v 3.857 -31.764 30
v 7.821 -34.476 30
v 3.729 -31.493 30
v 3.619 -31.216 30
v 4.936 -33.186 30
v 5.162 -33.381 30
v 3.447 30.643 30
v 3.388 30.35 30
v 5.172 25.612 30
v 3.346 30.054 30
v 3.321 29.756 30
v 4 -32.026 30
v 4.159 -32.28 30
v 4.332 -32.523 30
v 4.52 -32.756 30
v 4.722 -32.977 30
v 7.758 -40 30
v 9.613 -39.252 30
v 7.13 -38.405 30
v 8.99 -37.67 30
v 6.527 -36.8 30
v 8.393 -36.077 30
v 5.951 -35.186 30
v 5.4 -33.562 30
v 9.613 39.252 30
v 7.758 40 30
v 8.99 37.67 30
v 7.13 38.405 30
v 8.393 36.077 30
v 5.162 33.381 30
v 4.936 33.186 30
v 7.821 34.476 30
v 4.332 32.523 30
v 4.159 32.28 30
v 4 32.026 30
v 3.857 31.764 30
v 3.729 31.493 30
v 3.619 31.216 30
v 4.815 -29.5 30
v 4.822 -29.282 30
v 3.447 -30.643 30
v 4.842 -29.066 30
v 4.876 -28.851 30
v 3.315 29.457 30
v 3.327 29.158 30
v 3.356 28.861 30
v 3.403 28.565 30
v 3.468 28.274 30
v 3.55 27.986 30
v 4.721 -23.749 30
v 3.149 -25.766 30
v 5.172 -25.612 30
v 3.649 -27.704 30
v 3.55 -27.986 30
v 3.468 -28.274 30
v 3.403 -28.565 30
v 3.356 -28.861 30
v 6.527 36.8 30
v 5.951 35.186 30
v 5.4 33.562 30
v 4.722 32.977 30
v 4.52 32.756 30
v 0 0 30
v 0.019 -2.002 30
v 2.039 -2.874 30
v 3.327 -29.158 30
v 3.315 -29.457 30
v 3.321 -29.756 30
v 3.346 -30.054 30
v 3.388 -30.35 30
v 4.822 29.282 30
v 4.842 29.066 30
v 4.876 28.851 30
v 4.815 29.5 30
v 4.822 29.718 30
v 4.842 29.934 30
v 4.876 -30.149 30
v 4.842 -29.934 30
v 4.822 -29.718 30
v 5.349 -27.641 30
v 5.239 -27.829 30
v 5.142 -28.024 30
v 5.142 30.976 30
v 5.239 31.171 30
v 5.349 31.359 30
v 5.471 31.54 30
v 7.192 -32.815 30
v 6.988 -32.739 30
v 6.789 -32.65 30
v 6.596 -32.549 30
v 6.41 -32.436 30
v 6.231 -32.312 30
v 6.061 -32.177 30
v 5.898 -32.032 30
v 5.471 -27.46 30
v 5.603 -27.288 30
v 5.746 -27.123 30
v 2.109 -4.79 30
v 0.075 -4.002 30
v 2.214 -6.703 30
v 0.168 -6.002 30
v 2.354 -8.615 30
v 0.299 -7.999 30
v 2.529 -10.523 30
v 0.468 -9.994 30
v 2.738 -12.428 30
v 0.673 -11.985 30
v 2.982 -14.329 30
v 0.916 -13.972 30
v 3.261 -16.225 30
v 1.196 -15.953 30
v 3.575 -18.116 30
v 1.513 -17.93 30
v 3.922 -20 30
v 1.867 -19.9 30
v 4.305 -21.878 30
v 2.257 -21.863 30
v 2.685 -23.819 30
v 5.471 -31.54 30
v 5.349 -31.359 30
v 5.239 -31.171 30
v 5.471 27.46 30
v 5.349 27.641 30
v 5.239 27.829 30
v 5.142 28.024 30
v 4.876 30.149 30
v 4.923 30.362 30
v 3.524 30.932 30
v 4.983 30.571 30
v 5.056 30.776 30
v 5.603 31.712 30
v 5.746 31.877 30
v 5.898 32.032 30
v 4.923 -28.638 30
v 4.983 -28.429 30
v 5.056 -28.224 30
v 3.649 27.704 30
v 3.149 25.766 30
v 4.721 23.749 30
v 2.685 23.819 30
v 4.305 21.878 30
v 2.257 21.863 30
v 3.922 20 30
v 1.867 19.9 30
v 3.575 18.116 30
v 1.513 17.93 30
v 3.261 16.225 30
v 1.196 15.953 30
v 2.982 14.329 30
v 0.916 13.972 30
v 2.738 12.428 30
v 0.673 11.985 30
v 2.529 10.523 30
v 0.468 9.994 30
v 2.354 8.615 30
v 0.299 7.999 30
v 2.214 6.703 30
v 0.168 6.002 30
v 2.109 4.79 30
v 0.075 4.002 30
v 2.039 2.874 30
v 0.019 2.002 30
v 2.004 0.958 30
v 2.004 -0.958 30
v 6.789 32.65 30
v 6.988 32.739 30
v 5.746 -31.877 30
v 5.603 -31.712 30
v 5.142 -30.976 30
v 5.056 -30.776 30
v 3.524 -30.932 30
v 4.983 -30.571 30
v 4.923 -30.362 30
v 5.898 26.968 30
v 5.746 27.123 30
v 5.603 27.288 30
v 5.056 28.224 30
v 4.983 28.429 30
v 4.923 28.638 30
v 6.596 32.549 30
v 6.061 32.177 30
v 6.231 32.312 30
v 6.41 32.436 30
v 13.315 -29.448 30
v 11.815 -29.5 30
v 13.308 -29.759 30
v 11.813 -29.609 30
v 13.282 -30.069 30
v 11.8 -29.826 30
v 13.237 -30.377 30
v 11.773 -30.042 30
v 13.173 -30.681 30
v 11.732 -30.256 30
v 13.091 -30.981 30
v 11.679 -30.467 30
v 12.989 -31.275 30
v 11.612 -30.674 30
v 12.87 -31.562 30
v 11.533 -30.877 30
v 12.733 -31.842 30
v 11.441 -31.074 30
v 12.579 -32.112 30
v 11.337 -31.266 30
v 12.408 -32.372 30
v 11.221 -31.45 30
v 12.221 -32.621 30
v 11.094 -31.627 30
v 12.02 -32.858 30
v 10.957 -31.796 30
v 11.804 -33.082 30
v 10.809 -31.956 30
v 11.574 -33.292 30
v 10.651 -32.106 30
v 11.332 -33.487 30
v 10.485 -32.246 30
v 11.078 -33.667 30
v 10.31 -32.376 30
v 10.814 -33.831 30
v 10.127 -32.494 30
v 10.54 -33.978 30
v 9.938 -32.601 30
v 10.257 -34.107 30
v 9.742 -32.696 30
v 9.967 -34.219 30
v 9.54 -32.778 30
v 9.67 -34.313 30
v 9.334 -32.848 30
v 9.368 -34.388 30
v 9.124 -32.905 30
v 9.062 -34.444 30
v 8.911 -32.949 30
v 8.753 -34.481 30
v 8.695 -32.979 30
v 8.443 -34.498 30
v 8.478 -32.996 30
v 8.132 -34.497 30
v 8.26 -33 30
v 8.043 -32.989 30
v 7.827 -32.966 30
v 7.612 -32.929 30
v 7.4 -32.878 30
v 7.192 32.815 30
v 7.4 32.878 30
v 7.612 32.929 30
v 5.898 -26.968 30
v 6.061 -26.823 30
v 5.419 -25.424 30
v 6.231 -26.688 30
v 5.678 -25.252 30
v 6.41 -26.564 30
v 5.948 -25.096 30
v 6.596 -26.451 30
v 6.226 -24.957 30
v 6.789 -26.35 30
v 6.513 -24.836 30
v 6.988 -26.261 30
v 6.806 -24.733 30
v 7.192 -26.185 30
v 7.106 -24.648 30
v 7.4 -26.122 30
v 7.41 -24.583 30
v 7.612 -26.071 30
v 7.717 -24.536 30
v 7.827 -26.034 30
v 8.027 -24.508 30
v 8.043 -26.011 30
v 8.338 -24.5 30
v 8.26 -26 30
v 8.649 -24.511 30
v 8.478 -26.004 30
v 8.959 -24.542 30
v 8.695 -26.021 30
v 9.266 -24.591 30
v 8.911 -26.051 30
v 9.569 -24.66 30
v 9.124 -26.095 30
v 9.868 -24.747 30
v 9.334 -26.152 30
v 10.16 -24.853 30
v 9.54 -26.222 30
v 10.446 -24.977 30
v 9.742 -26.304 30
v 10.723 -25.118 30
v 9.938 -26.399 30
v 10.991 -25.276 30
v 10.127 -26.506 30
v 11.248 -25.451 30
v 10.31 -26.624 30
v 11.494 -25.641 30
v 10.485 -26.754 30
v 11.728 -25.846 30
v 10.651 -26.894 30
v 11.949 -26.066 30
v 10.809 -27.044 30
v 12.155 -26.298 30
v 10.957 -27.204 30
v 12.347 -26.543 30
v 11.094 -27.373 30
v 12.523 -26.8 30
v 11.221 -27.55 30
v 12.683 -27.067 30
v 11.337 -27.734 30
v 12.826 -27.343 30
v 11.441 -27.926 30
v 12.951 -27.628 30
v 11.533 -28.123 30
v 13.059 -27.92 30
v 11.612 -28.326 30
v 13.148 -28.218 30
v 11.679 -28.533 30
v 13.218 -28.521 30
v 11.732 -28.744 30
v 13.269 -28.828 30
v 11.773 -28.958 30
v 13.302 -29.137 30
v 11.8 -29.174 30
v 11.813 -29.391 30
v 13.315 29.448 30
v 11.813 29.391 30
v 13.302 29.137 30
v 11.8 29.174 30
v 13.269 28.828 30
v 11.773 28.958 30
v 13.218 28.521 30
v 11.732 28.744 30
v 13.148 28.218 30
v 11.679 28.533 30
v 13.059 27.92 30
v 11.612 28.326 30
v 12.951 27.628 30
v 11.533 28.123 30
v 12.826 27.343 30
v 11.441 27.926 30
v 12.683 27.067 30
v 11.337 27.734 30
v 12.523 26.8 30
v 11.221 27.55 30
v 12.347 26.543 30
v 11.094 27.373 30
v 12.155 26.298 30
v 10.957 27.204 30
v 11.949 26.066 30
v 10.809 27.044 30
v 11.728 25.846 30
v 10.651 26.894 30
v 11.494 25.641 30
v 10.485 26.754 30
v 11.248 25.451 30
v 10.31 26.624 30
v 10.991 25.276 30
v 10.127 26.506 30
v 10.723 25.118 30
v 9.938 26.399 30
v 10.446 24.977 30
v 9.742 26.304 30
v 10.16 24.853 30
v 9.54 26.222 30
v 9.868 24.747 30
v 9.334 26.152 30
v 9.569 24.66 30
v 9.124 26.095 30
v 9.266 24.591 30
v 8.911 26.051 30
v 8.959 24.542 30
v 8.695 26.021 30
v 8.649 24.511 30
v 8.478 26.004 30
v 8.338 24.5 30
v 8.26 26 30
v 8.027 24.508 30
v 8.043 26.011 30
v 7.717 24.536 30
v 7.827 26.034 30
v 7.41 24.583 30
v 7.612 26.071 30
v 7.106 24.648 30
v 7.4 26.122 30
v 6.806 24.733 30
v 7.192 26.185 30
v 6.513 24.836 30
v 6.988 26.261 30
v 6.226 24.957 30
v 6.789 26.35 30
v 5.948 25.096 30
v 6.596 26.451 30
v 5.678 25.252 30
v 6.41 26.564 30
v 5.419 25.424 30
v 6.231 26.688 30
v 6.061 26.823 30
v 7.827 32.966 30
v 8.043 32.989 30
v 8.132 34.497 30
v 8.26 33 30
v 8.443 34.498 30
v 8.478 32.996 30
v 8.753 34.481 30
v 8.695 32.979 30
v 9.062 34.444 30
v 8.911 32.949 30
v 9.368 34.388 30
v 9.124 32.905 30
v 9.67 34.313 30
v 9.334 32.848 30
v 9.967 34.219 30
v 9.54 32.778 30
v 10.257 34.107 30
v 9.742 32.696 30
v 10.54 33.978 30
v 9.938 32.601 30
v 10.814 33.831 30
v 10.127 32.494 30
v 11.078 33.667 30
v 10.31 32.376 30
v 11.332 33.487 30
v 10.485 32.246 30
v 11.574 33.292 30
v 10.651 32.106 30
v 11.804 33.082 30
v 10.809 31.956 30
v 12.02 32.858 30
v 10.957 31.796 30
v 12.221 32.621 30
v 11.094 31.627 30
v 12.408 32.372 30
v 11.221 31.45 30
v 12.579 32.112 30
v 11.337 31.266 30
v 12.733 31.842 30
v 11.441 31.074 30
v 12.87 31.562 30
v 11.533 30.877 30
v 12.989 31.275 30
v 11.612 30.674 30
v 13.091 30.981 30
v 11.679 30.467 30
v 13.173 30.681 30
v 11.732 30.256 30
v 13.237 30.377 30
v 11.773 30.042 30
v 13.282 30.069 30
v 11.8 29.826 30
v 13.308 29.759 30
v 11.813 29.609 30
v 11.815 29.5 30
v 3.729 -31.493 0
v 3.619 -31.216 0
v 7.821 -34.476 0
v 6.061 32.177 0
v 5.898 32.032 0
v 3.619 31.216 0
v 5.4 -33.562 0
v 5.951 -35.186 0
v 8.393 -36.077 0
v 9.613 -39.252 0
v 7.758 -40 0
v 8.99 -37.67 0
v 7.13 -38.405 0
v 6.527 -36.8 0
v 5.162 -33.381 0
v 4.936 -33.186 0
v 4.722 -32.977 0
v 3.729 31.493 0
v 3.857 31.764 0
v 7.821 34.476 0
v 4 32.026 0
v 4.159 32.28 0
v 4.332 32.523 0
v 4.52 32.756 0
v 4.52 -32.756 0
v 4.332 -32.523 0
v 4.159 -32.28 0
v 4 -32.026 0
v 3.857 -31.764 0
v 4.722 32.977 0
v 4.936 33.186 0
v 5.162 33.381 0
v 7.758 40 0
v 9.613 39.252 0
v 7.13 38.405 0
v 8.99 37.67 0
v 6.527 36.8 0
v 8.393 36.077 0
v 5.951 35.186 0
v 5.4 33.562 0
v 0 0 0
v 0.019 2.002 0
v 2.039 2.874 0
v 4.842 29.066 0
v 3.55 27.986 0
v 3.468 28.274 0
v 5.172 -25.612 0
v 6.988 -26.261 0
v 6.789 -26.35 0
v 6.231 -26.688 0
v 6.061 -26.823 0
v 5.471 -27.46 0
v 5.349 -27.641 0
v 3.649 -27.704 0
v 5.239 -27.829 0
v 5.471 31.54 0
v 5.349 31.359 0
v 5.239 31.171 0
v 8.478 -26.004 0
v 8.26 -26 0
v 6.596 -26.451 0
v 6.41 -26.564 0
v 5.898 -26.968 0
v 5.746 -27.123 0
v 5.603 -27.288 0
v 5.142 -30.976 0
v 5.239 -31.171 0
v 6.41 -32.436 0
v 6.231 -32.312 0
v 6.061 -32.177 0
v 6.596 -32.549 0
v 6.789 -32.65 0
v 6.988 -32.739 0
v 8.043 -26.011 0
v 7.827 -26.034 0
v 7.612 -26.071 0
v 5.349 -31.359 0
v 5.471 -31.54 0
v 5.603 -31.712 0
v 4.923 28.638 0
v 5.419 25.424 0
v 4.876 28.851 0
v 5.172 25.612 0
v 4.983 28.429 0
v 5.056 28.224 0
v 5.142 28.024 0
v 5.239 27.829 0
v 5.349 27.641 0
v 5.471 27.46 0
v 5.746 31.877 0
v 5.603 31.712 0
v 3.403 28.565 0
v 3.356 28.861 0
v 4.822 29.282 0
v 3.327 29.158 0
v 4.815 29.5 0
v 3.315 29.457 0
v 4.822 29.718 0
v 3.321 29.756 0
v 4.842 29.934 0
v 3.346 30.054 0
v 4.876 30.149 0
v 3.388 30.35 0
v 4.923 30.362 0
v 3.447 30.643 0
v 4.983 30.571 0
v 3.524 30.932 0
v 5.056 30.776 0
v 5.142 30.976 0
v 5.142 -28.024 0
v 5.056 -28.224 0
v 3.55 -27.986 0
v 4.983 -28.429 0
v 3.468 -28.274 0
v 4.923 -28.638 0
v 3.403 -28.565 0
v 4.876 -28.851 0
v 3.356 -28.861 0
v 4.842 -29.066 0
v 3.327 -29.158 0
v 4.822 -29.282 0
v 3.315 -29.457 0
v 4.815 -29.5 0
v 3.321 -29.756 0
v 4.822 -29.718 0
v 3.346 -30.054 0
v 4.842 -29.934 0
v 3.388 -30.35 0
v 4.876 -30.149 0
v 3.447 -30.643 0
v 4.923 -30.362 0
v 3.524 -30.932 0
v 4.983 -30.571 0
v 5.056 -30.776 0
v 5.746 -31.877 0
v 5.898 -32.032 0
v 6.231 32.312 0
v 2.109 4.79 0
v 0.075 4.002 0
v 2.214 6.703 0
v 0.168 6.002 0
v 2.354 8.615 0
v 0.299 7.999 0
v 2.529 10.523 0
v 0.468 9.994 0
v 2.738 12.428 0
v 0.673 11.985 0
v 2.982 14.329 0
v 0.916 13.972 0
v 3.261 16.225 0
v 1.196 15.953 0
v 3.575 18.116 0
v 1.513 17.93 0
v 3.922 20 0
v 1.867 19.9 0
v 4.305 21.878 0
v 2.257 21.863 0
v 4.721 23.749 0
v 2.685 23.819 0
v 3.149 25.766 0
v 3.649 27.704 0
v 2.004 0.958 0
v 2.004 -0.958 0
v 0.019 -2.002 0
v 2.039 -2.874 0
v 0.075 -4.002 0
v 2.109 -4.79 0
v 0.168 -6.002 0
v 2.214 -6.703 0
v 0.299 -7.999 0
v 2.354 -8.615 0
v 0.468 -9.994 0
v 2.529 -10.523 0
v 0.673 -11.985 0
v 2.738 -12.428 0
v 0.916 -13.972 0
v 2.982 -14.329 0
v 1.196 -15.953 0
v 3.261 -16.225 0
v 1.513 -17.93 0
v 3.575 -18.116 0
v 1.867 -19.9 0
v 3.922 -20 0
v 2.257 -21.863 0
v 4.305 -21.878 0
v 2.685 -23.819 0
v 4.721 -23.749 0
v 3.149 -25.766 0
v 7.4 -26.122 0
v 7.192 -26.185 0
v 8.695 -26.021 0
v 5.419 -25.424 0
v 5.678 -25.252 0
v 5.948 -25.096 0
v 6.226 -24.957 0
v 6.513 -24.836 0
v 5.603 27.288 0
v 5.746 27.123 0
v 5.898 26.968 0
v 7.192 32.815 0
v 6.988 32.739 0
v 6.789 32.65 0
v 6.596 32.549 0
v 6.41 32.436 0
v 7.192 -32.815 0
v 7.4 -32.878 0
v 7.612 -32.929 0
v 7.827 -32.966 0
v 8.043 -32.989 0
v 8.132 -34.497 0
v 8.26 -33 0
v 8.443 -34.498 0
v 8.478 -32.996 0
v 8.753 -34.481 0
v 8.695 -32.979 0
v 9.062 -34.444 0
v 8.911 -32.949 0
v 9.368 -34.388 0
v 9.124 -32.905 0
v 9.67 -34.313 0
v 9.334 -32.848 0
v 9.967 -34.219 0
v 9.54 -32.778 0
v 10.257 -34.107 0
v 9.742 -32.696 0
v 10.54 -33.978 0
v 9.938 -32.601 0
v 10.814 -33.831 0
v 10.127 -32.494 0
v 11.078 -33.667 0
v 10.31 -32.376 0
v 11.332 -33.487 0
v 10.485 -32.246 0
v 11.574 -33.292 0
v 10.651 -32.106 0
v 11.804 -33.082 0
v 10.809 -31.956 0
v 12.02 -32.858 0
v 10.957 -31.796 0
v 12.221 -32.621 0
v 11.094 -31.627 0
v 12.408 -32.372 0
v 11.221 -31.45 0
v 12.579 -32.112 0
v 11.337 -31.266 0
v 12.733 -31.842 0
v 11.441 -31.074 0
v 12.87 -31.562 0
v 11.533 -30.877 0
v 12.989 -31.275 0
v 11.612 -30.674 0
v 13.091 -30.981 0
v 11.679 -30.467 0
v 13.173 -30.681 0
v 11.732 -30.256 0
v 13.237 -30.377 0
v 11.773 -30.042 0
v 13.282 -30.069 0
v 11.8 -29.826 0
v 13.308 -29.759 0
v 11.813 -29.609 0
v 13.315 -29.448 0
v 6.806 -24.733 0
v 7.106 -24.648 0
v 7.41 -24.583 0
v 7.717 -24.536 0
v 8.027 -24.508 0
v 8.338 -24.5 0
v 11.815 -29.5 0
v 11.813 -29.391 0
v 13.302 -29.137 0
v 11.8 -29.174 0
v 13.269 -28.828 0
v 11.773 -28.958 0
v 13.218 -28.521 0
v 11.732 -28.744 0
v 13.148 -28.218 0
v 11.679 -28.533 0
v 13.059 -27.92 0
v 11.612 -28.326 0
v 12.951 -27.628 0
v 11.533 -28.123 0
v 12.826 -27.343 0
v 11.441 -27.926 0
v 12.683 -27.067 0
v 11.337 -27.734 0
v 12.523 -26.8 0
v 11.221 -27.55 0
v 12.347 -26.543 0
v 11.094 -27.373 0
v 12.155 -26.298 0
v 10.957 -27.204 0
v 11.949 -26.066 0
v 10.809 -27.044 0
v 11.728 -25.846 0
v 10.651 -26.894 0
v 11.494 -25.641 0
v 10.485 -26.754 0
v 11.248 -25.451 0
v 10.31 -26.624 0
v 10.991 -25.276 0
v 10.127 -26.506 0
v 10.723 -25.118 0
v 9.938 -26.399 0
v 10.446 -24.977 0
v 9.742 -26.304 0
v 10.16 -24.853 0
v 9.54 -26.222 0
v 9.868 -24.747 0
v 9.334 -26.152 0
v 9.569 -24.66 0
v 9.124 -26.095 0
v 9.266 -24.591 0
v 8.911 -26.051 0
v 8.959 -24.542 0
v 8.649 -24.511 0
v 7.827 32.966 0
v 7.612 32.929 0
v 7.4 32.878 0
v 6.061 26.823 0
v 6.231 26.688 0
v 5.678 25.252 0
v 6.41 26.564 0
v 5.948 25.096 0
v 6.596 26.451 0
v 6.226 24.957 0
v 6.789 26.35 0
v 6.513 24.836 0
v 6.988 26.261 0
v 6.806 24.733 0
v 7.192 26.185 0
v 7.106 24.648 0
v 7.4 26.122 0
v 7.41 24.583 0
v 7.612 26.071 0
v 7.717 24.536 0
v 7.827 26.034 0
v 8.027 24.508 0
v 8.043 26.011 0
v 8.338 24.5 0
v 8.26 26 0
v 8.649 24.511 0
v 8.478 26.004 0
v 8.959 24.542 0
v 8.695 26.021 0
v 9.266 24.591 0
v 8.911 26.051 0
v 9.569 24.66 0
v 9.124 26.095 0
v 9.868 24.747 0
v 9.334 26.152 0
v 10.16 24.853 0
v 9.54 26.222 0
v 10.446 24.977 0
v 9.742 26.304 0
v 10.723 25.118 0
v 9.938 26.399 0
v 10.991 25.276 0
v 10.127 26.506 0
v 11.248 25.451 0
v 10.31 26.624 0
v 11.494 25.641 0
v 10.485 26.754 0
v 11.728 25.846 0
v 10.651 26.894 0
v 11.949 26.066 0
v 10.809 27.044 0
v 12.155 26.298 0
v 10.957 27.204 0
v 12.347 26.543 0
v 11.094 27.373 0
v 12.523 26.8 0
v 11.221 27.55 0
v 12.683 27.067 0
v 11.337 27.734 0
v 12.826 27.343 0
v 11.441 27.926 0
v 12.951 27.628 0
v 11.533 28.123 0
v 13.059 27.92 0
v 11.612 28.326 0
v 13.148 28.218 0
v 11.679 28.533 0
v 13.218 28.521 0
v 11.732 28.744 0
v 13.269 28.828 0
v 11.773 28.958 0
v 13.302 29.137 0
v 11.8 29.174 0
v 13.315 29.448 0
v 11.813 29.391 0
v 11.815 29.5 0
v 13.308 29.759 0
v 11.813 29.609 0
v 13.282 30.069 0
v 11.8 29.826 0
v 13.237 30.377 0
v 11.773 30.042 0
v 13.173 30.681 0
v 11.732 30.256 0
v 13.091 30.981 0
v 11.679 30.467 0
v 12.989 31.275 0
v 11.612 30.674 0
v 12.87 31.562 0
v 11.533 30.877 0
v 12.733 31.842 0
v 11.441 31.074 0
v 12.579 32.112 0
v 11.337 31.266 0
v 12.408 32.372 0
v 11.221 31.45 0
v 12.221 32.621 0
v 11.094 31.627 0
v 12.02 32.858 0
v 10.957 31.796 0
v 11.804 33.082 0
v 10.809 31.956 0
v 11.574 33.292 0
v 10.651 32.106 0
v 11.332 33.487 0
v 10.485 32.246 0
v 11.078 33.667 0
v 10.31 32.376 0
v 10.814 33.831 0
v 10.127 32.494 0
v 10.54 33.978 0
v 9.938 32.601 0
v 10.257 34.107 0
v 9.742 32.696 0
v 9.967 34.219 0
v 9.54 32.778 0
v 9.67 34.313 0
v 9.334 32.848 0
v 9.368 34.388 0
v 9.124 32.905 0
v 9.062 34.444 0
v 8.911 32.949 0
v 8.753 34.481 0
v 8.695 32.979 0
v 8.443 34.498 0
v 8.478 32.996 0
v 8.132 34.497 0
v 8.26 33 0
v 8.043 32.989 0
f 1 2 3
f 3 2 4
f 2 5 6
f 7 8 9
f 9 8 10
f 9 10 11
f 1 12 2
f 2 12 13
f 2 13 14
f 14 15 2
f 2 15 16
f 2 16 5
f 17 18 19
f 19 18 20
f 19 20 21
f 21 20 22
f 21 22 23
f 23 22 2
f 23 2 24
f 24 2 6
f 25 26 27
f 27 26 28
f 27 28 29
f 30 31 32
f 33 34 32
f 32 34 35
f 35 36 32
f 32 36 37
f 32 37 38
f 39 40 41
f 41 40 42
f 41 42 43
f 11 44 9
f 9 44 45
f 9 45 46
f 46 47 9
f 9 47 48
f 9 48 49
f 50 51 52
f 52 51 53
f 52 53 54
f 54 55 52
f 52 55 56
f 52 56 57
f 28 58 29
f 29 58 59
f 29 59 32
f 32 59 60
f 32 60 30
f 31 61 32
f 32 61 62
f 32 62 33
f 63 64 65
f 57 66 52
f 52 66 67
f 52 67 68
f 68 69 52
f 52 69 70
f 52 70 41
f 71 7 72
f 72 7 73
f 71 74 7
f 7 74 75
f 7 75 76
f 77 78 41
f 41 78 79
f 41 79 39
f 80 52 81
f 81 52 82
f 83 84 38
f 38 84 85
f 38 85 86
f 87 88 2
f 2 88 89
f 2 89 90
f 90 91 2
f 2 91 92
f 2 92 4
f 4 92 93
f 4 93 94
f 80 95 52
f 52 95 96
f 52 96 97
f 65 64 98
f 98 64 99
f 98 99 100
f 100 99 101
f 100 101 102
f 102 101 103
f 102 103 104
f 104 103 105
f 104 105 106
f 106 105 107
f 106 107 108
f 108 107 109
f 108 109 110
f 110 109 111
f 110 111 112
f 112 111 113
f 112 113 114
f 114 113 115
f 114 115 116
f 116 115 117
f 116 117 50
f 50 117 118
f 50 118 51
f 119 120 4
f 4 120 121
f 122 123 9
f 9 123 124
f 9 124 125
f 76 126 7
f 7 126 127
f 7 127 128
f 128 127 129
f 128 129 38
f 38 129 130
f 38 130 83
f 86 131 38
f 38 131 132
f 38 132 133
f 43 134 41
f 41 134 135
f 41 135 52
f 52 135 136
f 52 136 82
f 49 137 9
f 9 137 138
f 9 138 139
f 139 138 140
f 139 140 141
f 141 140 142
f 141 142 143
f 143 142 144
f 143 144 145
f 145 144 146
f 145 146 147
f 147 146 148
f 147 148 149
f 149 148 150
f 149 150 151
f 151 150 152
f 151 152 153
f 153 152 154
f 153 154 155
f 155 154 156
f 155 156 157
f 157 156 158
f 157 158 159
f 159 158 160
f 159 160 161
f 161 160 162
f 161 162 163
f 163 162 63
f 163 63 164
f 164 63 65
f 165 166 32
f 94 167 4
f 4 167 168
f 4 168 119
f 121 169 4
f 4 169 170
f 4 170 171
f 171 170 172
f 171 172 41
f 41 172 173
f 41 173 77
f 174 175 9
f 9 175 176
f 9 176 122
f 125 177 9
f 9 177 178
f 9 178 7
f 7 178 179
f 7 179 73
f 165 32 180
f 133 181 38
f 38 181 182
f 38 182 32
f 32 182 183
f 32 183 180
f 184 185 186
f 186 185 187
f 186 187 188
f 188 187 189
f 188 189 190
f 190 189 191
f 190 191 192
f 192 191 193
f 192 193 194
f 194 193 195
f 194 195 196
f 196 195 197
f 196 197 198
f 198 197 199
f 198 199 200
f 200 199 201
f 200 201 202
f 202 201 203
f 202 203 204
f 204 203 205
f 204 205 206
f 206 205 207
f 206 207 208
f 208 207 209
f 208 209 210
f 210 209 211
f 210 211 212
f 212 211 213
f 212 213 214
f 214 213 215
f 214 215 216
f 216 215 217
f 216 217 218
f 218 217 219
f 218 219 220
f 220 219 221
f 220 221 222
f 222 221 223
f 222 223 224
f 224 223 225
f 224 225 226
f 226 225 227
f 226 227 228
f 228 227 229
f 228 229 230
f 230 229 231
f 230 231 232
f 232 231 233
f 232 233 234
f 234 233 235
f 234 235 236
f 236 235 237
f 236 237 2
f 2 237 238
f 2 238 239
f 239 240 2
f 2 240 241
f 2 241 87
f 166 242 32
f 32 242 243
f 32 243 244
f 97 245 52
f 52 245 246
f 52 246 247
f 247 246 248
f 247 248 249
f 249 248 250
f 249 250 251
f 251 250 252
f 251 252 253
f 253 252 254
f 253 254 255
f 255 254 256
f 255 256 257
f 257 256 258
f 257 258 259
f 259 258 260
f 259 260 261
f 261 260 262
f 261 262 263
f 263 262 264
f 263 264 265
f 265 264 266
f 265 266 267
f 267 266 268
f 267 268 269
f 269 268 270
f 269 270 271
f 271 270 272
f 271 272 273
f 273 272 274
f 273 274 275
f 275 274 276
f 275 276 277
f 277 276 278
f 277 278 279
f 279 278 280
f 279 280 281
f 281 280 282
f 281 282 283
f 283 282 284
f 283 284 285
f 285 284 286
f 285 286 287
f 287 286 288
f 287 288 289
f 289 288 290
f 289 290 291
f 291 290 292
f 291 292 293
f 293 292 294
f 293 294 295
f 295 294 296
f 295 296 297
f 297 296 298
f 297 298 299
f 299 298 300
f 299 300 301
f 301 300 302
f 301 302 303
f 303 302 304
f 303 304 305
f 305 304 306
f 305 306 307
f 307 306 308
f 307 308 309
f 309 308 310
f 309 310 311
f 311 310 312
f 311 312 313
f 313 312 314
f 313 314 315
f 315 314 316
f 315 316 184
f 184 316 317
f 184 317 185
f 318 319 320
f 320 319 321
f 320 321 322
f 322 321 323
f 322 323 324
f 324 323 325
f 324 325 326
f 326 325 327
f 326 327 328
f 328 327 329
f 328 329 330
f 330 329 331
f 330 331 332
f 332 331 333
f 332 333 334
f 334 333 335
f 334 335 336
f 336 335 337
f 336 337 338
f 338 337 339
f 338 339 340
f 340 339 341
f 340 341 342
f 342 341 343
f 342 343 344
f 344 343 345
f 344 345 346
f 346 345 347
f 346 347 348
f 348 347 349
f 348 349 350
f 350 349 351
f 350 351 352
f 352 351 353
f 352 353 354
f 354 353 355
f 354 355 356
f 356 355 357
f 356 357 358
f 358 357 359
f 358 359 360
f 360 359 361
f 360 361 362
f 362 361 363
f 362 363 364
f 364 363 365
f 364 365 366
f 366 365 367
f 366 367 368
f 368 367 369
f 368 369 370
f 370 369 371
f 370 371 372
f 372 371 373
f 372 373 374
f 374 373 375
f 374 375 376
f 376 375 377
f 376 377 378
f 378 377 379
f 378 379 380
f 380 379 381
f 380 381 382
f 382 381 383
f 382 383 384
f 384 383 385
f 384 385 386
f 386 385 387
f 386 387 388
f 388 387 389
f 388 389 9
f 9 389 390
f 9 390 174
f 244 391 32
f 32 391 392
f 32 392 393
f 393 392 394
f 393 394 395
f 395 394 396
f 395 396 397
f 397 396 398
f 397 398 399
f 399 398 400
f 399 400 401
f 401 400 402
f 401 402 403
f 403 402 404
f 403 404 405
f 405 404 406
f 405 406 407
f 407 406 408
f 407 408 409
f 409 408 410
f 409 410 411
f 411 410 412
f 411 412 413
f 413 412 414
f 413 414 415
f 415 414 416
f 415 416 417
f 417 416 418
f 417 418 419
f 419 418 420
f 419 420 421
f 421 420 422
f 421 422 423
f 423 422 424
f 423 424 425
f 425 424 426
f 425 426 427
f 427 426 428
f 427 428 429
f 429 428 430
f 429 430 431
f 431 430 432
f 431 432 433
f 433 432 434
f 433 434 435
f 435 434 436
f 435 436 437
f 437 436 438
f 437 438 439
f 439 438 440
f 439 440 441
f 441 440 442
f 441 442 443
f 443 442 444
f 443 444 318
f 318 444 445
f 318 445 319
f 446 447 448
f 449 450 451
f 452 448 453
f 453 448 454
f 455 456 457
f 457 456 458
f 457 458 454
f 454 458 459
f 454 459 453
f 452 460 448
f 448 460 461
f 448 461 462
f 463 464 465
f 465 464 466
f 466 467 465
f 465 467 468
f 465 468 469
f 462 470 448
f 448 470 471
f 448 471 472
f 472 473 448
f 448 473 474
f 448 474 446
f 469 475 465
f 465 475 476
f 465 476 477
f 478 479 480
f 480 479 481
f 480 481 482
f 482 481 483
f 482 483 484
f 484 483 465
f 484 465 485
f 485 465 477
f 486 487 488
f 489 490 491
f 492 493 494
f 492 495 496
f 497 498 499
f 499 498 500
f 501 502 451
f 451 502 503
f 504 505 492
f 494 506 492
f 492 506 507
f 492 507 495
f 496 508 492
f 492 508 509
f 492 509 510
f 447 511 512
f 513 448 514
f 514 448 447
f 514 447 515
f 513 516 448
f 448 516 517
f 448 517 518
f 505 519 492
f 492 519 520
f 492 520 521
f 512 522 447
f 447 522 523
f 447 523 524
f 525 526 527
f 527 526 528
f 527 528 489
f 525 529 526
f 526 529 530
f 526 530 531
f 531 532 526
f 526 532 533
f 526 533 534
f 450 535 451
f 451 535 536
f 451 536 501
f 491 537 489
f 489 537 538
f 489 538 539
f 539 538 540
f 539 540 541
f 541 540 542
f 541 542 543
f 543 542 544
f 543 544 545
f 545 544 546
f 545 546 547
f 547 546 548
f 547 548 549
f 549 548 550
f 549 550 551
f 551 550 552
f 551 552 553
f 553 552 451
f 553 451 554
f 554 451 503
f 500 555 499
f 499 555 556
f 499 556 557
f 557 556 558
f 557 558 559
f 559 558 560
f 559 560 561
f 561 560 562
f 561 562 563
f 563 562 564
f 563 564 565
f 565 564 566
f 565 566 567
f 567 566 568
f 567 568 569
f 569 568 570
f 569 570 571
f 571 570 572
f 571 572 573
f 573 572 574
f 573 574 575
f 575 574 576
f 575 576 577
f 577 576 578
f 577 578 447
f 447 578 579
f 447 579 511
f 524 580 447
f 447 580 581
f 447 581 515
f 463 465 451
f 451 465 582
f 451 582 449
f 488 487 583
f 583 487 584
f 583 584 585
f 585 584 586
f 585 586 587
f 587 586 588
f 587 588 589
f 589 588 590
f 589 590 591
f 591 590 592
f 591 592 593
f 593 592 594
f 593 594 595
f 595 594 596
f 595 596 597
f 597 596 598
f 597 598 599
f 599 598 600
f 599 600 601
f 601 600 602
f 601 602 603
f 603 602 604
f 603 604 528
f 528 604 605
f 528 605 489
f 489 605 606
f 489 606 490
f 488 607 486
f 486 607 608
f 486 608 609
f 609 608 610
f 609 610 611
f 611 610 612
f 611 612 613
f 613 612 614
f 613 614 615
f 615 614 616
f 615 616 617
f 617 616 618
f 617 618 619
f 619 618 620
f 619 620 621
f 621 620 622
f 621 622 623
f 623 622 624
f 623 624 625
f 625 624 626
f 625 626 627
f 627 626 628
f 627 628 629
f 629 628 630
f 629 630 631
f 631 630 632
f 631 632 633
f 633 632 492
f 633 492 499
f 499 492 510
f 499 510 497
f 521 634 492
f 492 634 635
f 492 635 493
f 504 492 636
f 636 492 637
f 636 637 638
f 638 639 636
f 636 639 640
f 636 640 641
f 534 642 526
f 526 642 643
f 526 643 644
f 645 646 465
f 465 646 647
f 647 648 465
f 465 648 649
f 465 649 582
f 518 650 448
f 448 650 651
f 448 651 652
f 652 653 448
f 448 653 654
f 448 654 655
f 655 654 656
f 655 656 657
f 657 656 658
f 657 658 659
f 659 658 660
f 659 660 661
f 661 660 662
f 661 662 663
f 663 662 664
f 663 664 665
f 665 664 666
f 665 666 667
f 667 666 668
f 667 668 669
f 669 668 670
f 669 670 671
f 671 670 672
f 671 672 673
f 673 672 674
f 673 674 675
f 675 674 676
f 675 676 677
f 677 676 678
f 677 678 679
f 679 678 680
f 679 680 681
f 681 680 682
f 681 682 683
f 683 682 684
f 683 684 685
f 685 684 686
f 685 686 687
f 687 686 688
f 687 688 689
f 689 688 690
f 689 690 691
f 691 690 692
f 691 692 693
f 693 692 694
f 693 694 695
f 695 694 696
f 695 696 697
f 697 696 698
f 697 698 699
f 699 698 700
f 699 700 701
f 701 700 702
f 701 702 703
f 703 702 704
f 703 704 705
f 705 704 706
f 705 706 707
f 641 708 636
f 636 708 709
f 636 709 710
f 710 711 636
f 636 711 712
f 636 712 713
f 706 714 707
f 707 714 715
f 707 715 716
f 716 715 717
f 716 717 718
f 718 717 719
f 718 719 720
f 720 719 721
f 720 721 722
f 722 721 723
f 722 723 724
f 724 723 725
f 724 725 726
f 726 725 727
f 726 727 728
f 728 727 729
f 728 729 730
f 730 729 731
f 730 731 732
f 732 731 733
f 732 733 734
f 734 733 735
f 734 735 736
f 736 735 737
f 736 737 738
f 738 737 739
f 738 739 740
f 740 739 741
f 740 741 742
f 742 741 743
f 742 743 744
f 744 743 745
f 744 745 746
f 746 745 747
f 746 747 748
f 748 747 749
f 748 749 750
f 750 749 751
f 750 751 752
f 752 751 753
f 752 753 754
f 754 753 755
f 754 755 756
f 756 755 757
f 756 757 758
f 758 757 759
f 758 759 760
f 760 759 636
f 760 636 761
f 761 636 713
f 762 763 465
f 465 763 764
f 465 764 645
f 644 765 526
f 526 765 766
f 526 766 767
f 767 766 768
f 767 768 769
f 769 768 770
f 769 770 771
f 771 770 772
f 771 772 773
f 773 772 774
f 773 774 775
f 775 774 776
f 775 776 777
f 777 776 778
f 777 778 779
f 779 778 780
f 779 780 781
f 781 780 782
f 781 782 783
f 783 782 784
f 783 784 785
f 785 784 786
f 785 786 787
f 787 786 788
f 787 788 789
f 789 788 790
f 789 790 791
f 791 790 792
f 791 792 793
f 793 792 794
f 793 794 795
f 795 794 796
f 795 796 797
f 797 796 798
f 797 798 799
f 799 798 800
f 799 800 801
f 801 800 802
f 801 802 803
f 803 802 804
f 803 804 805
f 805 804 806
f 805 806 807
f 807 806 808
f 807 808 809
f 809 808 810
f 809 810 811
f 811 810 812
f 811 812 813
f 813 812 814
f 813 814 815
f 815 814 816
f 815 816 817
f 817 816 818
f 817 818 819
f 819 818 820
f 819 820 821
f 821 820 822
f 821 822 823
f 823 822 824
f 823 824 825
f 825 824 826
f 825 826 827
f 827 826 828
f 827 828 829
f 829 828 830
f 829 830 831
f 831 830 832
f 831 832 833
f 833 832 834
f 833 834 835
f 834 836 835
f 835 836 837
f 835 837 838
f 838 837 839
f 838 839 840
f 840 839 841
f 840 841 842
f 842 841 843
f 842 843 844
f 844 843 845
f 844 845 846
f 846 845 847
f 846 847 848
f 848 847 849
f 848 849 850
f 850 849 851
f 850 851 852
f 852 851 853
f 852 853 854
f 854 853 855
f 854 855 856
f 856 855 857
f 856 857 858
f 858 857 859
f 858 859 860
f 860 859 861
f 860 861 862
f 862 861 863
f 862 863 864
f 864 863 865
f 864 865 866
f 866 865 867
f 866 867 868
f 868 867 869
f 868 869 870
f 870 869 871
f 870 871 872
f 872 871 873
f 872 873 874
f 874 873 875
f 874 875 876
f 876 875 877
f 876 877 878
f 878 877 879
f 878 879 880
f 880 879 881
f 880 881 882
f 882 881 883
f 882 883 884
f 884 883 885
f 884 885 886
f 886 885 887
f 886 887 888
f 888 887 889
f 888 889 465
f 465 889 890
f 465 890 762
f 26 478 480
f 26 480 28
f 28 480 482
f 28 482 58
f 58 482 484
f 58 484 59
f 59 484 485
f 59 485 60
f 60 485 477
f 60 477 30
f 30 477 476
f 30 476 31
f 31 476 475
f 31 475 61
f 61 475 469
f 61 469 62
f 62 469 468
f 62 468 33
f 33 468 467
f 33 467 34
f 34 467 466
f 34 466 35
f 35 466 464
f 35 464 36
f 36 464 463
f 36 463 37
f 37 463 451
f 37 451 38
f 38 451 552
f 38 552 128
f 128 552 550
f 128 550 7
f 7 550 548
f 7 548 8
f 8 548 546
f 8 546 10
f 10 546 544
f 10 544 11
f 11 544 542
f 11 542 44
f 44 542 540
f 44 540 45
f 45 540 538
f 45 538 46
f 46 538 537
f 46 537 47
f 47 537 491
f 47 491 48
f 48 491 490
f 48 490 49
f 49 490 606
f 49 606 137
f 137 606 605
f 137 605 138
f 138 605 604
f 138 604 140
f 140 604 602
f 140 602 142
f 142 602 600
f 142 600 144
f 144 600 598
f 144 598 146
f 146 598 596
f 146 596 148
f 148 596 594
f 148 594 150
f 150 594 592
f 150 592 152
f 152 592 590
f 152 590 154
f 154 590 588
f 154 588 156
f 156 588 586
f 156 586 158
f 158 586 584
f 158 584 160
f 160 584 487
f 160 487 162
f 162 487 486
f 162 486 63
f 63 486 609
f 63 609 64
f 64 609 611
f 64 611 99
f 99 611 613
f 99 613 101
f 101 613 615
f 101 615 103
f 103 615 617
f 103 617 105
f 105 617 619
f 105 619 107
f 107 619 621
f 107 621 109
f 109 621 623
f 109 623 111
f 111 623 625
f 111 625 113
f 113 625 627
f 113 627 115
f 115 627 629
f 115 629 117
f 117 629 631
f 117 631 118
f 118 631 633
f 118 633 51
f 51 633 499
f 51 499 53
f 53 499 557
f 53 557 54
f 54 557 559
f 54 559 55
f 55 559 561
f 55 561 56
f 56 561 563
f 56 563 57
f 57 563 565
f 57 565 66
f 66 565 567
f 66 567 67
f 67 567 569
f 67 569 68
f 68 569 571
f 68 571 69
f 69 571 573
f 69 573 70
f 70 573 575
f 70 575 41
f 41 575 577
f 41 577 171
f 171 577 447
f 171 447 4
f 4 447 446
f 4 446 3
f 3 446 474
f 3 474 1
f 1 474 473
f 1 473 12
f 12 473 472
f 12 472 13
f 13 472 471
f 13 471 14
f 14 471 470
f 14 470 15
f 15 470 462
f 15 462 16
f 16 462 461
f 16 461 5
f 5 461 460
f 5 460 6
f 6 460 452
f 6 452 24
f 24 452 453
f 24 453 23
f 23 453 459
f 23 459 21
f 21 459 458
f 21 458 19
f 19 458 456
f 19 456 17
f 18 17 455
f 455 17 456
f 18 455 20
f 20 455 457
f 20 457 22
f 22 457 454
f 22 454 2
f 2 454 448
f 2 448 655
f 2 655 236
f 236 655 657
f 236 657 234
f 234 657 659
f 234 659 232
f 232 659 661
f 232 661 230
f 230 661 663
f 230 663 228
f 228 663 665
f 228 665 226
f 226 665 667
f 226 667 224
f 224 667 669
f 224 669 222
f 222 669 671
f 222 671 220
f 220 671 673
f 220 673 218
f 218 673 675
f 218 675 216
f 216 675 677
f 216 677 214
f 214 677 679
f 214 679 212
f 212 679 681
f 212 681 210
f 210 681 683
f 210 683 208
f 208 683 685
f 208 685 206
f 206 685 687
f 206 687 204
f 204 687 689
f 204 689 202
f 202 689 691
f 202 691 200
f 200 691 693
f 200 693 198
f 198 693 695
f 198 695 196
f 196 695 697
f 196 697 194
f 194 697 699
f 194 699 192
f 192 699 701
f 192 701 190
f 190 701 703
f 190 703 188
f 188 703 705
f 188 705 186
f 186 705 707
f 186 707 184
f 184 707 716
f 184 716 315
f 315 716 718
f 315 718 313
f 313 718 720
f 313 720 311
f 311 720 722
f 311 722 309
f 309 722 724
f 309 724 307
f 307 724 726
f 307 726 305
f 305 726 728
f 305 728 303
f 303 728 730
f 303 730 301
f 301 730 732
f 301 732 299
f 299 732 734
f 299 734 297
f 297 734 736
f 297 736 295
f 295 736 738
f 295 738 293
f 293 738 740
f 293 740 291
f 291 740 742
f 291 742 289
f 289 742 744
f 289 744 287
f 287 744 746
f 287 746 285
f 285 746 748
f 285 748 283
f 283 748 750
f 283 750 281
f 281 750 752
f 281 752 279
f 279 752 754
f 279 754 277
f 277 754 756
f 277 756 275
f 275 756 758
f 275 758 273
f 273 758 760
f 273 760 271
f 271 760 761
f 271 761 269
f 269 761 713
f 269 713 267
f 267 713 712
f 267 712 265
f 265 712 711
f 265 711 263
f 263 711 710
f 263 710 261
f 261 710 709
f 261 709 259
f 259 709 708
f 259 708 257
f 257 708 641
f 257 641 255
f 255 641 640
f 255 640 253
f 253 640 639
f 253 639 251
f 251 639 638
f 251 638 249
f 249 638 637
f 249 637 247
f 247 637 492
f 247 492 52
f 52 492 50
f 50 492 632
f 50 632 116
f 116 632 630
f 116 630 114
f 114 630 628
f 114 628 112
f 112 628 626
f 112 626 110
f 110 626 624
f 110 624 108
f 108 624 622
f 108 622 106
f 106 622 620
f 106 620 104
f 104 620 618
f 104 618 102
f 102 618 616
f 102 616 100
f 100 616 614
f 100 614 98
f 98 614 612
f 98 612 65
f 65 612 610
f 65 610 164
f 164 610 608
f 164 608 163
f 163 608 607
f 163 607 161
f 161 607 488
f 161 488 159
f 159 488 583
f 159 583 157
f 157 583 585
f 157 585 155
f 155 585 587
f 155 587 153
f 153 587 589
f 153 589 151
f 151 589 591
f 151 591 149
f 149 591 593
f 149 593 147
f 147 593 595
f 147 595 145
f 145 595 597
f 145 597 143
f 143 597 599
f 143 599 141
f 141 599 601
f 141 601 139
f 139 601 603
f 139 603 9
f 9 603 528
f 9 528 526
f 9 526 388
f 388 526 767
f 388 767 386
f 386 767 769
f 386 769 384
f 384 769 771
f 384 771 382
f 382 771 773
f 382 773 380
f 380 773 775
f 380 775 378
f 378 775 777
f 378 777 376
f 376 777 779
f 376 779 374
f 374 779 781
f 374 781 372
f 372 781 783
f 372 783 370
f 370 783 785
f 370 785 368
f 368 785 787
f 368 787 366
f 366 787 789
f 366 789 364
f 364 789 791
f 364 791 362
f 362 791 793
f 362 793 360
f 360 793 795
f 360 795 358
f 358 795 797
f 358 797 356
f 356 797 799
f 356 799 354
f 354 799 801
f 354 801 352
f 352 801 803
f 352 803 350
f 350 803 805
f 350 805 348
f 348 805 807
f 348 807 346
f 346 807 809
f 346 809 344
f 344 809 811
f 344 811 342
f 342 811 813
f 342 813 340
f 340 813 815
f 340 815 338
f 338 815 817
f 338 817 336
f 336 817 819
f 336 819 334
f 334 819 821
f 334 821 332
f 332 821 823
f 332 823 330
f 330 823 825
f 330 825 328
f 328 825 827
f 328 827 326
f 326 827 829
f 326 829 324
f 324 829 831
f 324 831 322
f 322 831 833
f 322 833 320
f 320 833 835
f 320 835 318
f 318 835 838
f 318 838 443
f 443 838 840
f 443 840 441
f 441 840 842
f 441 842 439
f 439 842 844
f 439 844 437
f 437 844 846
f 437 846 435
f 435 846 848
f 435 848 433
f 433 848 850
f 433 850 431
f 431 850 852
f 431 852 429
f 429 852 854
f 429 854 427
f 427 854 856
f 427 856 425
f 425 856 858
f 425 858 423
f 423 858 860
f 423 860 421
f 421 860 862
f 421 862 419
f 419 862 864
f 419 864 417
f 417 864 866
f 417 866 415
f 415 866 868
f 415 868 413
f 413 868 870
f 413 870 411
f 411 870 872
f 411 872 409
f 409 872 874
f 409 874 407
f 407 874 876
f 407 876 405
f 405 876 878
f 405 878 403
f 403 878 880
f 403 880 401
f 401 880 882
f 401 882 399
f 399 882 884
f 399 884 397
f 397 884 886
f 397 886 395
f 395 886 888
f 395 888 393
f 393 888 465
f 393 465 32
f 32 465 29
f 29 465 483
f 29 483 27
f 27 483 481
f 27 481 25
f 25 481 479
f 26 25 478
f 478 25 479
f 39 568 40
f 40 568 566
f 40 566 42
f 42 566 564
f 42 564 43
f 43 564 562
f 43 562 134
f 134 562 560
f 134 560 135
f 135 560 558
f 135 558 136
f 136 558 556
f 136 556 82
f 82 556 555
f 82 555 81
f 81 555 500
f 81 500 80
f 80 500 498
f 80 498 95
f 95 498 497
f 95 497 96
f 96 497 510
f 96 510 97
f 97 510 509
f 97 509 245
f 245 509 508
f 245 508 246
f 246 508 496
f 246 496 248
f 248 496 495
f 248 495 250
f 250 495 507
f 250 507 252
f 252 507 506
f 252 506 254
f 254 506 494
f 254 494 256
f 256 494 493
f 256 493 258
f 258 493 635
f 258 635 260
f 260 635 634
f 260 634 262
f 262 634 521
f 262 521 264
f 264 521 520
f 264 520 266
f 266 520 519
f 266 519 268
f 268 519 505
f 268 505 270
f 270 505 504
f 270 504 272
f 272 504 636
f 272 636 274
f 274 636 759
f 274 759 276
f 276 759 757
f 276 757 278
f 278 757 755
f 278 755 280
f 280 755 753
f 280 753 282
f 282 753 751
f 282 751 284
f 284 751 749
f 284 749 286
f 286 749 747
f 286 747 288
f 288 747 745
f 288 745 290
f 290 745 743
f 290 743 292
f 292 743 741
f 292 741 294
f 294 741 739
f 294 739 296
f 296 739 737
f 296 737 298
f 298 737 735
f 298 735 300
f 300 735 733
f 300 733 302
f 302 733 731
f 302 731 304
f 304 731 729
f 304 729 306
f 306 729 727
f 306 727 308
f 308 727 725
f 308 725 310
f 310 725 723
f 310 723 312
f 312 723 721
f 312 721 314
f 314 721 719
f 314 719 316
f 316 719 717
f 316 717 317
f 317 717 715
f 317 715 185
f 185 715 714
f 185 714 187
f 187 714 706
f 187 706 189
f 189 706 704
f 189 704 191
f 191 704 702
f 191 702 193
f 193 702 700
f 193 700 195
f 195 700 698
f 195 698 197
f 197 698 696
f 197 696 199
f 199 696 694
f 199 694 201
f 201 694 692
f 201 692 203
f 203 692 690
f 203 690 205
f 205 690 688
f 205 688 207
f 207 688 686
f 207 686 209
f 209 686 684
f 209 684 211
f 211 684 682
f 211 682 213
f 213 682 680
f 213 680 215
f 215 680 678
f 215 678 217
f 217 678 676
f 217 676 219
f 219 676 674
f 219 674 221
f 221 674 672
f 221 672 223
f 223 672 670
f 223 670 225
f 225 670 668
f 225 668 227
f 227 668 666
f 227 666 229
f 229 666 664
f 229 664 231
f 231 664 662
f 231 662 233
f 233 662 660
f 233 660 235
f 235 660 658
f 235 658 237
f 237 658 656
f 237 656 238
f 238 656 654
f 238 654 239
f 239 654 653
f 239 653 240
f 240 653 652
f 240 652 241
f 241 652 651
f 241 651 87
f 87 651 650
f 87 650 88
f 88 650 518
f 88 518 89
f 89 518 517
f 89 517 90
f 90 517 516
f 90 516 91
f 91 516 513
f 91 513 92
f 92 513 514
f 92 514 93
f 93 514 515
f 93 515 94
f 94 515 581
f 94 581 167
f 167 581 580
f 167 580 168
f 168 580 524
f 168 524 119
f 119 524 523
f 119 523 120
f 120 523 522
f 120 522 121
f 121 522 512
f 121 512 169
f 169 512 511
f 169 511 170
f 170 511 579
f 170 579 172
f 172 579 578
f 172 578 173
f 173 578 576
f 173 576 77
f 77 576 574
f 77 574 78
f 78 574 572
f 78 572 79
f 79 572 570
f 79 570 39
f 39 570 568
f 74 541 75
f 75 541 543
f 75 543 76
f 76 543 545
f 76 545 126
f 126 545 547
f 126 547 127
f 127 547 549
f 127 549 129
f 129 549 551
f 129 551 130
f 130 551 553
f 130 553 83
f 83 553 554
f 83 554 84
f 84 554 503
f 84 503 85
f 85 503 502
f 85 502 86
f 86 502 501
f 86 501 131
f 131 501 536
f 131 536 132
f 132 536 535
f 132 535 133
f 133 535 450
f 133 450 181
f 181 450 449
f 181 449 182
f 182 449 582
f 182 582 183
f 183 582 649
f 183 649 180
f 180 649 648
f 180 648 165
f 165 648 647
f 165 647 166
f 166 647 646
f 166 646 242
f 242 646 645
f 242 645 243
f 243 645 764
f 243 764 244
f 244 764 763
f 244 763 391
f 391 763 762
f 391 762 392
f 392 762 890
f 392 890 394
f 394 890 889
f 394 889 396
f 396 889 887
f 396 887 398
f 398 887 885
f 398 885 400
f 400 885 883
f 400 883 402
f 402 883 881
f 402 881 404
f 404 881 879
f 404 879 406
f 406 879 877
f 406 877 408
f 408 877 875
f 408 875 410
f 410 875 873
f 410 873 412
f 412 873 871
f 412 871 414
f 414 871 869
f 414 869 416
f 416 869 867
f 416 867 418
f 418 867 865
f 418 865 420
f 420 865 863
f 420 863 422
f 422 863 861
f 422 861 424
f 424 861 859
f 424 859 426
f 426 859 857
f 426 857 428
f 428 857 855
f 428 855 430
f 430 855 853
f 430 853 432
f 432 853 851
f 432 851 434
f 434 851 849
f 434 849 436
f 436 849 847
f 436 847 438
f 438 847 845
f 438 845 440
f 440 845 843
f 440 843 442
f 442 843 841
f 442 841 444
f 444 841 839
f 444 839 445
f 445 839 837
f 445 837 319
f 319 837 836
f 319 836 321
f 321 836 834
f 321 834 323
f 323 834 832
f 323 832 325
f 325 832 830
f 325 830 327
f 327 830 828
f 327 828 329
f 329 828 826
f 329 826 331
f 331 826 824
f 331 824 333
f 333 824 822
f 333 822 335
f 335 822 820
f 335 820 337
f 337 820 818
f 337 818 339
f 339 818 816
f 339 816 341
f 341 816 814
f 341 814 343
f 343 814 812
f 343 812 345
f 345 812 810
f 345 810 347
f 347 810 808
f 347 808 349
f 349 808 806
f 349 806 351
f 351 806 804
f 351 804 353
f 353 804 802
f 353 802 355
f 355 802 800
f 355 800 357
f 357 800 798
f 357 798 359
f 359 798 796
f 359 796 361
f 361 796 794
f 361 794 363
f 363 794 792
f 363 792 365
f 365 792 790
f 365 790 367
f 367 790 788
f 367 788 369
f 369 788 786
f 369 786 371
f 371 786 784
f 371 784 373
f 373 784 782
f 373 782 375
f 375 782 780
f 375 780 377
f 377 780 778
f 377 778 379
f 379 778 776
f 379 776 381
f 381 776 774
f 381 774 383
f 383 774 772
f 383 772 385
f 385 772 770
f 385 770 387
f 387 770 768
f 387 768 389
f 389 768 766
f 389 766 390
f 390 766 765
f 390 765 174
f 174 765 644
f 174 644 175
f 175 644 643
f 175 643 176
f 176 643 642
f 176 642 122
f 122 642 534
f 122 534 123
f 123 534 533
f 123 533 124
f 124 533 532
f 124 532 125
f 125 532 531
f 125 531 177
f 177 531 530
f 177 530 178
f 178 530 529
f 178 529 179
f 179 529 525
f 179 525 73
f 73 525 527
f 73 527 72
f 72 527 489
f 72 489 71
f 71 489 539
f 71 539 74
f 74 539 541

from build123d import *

# Parameters (mm, degrees)
SKETCH1_R           = 3.5
BOSS_EXTRUDE1_DEPTH = 30


with BuildPart() as part:
    # Sketch1 → Boss-Extrude1 (new body)
    with BuildSketch(Plane.XY):
        with BuildLine():
            Line((7.757871849, 40), (9.612864898, 39.252336449))
            ThreePointArc((9.612864898, 39.252336449), (8.688014127, 36.874834695), (7.821195192, 34.475566375))
            ThreePointArc((7.821195192, 34.475566375), (13.105433831, 28.067961165), (5.171505388, 25.611670876))
            ThreePointArc((5.171505388, 25.611670876), (2, 0), (5.171505388, -25.611670876))
            ThreePointArc((5.171505388, -25.611670876), (13.105433831, -28.067961165), (7.821195192, -34.475566375))
            ThreePointArc((7.821195192, -34.475566375), (8.688014127, -36.874834695), (9.612864898, -39.252336449))
            Line((9.612864898, -39.252336449), (7.757871849, -40))
            ThreePointArc((7.757871849, -40), (6.527354129, -36.800100973), (5.399981488, -33.562423012))
            ThreePointArc((5.399981488, -33.562423012), (3.524355651, -30.932038835), (3.648663608, -27.703813202))
            ThreePointArc((3.648663608, -27.703813202), (0, 0), (3.648663608, 27.703813202))
            ThreePointArc((3.648663608, 27.703813202), (3.524355651, 30.932038835), (5.399981488, 33.562423012))
            ThreePointArc((5.399981488, 33.562423012), (6.527354129, 36.800100973), (7.757871849, 40))
        make_face()
        with Locations((8.314894741, 29.5)):
            Circle(SKETCH1_R, mode=Mode.SUBTRACT)
        with Locations((8.314894741, -29.5)):
            Circle(SKETCH1_R, mode=Mode.SUBTRACT)
    extrude(amount=BOSS_EXTRUDE1_DEPTH)


solid = part.part
